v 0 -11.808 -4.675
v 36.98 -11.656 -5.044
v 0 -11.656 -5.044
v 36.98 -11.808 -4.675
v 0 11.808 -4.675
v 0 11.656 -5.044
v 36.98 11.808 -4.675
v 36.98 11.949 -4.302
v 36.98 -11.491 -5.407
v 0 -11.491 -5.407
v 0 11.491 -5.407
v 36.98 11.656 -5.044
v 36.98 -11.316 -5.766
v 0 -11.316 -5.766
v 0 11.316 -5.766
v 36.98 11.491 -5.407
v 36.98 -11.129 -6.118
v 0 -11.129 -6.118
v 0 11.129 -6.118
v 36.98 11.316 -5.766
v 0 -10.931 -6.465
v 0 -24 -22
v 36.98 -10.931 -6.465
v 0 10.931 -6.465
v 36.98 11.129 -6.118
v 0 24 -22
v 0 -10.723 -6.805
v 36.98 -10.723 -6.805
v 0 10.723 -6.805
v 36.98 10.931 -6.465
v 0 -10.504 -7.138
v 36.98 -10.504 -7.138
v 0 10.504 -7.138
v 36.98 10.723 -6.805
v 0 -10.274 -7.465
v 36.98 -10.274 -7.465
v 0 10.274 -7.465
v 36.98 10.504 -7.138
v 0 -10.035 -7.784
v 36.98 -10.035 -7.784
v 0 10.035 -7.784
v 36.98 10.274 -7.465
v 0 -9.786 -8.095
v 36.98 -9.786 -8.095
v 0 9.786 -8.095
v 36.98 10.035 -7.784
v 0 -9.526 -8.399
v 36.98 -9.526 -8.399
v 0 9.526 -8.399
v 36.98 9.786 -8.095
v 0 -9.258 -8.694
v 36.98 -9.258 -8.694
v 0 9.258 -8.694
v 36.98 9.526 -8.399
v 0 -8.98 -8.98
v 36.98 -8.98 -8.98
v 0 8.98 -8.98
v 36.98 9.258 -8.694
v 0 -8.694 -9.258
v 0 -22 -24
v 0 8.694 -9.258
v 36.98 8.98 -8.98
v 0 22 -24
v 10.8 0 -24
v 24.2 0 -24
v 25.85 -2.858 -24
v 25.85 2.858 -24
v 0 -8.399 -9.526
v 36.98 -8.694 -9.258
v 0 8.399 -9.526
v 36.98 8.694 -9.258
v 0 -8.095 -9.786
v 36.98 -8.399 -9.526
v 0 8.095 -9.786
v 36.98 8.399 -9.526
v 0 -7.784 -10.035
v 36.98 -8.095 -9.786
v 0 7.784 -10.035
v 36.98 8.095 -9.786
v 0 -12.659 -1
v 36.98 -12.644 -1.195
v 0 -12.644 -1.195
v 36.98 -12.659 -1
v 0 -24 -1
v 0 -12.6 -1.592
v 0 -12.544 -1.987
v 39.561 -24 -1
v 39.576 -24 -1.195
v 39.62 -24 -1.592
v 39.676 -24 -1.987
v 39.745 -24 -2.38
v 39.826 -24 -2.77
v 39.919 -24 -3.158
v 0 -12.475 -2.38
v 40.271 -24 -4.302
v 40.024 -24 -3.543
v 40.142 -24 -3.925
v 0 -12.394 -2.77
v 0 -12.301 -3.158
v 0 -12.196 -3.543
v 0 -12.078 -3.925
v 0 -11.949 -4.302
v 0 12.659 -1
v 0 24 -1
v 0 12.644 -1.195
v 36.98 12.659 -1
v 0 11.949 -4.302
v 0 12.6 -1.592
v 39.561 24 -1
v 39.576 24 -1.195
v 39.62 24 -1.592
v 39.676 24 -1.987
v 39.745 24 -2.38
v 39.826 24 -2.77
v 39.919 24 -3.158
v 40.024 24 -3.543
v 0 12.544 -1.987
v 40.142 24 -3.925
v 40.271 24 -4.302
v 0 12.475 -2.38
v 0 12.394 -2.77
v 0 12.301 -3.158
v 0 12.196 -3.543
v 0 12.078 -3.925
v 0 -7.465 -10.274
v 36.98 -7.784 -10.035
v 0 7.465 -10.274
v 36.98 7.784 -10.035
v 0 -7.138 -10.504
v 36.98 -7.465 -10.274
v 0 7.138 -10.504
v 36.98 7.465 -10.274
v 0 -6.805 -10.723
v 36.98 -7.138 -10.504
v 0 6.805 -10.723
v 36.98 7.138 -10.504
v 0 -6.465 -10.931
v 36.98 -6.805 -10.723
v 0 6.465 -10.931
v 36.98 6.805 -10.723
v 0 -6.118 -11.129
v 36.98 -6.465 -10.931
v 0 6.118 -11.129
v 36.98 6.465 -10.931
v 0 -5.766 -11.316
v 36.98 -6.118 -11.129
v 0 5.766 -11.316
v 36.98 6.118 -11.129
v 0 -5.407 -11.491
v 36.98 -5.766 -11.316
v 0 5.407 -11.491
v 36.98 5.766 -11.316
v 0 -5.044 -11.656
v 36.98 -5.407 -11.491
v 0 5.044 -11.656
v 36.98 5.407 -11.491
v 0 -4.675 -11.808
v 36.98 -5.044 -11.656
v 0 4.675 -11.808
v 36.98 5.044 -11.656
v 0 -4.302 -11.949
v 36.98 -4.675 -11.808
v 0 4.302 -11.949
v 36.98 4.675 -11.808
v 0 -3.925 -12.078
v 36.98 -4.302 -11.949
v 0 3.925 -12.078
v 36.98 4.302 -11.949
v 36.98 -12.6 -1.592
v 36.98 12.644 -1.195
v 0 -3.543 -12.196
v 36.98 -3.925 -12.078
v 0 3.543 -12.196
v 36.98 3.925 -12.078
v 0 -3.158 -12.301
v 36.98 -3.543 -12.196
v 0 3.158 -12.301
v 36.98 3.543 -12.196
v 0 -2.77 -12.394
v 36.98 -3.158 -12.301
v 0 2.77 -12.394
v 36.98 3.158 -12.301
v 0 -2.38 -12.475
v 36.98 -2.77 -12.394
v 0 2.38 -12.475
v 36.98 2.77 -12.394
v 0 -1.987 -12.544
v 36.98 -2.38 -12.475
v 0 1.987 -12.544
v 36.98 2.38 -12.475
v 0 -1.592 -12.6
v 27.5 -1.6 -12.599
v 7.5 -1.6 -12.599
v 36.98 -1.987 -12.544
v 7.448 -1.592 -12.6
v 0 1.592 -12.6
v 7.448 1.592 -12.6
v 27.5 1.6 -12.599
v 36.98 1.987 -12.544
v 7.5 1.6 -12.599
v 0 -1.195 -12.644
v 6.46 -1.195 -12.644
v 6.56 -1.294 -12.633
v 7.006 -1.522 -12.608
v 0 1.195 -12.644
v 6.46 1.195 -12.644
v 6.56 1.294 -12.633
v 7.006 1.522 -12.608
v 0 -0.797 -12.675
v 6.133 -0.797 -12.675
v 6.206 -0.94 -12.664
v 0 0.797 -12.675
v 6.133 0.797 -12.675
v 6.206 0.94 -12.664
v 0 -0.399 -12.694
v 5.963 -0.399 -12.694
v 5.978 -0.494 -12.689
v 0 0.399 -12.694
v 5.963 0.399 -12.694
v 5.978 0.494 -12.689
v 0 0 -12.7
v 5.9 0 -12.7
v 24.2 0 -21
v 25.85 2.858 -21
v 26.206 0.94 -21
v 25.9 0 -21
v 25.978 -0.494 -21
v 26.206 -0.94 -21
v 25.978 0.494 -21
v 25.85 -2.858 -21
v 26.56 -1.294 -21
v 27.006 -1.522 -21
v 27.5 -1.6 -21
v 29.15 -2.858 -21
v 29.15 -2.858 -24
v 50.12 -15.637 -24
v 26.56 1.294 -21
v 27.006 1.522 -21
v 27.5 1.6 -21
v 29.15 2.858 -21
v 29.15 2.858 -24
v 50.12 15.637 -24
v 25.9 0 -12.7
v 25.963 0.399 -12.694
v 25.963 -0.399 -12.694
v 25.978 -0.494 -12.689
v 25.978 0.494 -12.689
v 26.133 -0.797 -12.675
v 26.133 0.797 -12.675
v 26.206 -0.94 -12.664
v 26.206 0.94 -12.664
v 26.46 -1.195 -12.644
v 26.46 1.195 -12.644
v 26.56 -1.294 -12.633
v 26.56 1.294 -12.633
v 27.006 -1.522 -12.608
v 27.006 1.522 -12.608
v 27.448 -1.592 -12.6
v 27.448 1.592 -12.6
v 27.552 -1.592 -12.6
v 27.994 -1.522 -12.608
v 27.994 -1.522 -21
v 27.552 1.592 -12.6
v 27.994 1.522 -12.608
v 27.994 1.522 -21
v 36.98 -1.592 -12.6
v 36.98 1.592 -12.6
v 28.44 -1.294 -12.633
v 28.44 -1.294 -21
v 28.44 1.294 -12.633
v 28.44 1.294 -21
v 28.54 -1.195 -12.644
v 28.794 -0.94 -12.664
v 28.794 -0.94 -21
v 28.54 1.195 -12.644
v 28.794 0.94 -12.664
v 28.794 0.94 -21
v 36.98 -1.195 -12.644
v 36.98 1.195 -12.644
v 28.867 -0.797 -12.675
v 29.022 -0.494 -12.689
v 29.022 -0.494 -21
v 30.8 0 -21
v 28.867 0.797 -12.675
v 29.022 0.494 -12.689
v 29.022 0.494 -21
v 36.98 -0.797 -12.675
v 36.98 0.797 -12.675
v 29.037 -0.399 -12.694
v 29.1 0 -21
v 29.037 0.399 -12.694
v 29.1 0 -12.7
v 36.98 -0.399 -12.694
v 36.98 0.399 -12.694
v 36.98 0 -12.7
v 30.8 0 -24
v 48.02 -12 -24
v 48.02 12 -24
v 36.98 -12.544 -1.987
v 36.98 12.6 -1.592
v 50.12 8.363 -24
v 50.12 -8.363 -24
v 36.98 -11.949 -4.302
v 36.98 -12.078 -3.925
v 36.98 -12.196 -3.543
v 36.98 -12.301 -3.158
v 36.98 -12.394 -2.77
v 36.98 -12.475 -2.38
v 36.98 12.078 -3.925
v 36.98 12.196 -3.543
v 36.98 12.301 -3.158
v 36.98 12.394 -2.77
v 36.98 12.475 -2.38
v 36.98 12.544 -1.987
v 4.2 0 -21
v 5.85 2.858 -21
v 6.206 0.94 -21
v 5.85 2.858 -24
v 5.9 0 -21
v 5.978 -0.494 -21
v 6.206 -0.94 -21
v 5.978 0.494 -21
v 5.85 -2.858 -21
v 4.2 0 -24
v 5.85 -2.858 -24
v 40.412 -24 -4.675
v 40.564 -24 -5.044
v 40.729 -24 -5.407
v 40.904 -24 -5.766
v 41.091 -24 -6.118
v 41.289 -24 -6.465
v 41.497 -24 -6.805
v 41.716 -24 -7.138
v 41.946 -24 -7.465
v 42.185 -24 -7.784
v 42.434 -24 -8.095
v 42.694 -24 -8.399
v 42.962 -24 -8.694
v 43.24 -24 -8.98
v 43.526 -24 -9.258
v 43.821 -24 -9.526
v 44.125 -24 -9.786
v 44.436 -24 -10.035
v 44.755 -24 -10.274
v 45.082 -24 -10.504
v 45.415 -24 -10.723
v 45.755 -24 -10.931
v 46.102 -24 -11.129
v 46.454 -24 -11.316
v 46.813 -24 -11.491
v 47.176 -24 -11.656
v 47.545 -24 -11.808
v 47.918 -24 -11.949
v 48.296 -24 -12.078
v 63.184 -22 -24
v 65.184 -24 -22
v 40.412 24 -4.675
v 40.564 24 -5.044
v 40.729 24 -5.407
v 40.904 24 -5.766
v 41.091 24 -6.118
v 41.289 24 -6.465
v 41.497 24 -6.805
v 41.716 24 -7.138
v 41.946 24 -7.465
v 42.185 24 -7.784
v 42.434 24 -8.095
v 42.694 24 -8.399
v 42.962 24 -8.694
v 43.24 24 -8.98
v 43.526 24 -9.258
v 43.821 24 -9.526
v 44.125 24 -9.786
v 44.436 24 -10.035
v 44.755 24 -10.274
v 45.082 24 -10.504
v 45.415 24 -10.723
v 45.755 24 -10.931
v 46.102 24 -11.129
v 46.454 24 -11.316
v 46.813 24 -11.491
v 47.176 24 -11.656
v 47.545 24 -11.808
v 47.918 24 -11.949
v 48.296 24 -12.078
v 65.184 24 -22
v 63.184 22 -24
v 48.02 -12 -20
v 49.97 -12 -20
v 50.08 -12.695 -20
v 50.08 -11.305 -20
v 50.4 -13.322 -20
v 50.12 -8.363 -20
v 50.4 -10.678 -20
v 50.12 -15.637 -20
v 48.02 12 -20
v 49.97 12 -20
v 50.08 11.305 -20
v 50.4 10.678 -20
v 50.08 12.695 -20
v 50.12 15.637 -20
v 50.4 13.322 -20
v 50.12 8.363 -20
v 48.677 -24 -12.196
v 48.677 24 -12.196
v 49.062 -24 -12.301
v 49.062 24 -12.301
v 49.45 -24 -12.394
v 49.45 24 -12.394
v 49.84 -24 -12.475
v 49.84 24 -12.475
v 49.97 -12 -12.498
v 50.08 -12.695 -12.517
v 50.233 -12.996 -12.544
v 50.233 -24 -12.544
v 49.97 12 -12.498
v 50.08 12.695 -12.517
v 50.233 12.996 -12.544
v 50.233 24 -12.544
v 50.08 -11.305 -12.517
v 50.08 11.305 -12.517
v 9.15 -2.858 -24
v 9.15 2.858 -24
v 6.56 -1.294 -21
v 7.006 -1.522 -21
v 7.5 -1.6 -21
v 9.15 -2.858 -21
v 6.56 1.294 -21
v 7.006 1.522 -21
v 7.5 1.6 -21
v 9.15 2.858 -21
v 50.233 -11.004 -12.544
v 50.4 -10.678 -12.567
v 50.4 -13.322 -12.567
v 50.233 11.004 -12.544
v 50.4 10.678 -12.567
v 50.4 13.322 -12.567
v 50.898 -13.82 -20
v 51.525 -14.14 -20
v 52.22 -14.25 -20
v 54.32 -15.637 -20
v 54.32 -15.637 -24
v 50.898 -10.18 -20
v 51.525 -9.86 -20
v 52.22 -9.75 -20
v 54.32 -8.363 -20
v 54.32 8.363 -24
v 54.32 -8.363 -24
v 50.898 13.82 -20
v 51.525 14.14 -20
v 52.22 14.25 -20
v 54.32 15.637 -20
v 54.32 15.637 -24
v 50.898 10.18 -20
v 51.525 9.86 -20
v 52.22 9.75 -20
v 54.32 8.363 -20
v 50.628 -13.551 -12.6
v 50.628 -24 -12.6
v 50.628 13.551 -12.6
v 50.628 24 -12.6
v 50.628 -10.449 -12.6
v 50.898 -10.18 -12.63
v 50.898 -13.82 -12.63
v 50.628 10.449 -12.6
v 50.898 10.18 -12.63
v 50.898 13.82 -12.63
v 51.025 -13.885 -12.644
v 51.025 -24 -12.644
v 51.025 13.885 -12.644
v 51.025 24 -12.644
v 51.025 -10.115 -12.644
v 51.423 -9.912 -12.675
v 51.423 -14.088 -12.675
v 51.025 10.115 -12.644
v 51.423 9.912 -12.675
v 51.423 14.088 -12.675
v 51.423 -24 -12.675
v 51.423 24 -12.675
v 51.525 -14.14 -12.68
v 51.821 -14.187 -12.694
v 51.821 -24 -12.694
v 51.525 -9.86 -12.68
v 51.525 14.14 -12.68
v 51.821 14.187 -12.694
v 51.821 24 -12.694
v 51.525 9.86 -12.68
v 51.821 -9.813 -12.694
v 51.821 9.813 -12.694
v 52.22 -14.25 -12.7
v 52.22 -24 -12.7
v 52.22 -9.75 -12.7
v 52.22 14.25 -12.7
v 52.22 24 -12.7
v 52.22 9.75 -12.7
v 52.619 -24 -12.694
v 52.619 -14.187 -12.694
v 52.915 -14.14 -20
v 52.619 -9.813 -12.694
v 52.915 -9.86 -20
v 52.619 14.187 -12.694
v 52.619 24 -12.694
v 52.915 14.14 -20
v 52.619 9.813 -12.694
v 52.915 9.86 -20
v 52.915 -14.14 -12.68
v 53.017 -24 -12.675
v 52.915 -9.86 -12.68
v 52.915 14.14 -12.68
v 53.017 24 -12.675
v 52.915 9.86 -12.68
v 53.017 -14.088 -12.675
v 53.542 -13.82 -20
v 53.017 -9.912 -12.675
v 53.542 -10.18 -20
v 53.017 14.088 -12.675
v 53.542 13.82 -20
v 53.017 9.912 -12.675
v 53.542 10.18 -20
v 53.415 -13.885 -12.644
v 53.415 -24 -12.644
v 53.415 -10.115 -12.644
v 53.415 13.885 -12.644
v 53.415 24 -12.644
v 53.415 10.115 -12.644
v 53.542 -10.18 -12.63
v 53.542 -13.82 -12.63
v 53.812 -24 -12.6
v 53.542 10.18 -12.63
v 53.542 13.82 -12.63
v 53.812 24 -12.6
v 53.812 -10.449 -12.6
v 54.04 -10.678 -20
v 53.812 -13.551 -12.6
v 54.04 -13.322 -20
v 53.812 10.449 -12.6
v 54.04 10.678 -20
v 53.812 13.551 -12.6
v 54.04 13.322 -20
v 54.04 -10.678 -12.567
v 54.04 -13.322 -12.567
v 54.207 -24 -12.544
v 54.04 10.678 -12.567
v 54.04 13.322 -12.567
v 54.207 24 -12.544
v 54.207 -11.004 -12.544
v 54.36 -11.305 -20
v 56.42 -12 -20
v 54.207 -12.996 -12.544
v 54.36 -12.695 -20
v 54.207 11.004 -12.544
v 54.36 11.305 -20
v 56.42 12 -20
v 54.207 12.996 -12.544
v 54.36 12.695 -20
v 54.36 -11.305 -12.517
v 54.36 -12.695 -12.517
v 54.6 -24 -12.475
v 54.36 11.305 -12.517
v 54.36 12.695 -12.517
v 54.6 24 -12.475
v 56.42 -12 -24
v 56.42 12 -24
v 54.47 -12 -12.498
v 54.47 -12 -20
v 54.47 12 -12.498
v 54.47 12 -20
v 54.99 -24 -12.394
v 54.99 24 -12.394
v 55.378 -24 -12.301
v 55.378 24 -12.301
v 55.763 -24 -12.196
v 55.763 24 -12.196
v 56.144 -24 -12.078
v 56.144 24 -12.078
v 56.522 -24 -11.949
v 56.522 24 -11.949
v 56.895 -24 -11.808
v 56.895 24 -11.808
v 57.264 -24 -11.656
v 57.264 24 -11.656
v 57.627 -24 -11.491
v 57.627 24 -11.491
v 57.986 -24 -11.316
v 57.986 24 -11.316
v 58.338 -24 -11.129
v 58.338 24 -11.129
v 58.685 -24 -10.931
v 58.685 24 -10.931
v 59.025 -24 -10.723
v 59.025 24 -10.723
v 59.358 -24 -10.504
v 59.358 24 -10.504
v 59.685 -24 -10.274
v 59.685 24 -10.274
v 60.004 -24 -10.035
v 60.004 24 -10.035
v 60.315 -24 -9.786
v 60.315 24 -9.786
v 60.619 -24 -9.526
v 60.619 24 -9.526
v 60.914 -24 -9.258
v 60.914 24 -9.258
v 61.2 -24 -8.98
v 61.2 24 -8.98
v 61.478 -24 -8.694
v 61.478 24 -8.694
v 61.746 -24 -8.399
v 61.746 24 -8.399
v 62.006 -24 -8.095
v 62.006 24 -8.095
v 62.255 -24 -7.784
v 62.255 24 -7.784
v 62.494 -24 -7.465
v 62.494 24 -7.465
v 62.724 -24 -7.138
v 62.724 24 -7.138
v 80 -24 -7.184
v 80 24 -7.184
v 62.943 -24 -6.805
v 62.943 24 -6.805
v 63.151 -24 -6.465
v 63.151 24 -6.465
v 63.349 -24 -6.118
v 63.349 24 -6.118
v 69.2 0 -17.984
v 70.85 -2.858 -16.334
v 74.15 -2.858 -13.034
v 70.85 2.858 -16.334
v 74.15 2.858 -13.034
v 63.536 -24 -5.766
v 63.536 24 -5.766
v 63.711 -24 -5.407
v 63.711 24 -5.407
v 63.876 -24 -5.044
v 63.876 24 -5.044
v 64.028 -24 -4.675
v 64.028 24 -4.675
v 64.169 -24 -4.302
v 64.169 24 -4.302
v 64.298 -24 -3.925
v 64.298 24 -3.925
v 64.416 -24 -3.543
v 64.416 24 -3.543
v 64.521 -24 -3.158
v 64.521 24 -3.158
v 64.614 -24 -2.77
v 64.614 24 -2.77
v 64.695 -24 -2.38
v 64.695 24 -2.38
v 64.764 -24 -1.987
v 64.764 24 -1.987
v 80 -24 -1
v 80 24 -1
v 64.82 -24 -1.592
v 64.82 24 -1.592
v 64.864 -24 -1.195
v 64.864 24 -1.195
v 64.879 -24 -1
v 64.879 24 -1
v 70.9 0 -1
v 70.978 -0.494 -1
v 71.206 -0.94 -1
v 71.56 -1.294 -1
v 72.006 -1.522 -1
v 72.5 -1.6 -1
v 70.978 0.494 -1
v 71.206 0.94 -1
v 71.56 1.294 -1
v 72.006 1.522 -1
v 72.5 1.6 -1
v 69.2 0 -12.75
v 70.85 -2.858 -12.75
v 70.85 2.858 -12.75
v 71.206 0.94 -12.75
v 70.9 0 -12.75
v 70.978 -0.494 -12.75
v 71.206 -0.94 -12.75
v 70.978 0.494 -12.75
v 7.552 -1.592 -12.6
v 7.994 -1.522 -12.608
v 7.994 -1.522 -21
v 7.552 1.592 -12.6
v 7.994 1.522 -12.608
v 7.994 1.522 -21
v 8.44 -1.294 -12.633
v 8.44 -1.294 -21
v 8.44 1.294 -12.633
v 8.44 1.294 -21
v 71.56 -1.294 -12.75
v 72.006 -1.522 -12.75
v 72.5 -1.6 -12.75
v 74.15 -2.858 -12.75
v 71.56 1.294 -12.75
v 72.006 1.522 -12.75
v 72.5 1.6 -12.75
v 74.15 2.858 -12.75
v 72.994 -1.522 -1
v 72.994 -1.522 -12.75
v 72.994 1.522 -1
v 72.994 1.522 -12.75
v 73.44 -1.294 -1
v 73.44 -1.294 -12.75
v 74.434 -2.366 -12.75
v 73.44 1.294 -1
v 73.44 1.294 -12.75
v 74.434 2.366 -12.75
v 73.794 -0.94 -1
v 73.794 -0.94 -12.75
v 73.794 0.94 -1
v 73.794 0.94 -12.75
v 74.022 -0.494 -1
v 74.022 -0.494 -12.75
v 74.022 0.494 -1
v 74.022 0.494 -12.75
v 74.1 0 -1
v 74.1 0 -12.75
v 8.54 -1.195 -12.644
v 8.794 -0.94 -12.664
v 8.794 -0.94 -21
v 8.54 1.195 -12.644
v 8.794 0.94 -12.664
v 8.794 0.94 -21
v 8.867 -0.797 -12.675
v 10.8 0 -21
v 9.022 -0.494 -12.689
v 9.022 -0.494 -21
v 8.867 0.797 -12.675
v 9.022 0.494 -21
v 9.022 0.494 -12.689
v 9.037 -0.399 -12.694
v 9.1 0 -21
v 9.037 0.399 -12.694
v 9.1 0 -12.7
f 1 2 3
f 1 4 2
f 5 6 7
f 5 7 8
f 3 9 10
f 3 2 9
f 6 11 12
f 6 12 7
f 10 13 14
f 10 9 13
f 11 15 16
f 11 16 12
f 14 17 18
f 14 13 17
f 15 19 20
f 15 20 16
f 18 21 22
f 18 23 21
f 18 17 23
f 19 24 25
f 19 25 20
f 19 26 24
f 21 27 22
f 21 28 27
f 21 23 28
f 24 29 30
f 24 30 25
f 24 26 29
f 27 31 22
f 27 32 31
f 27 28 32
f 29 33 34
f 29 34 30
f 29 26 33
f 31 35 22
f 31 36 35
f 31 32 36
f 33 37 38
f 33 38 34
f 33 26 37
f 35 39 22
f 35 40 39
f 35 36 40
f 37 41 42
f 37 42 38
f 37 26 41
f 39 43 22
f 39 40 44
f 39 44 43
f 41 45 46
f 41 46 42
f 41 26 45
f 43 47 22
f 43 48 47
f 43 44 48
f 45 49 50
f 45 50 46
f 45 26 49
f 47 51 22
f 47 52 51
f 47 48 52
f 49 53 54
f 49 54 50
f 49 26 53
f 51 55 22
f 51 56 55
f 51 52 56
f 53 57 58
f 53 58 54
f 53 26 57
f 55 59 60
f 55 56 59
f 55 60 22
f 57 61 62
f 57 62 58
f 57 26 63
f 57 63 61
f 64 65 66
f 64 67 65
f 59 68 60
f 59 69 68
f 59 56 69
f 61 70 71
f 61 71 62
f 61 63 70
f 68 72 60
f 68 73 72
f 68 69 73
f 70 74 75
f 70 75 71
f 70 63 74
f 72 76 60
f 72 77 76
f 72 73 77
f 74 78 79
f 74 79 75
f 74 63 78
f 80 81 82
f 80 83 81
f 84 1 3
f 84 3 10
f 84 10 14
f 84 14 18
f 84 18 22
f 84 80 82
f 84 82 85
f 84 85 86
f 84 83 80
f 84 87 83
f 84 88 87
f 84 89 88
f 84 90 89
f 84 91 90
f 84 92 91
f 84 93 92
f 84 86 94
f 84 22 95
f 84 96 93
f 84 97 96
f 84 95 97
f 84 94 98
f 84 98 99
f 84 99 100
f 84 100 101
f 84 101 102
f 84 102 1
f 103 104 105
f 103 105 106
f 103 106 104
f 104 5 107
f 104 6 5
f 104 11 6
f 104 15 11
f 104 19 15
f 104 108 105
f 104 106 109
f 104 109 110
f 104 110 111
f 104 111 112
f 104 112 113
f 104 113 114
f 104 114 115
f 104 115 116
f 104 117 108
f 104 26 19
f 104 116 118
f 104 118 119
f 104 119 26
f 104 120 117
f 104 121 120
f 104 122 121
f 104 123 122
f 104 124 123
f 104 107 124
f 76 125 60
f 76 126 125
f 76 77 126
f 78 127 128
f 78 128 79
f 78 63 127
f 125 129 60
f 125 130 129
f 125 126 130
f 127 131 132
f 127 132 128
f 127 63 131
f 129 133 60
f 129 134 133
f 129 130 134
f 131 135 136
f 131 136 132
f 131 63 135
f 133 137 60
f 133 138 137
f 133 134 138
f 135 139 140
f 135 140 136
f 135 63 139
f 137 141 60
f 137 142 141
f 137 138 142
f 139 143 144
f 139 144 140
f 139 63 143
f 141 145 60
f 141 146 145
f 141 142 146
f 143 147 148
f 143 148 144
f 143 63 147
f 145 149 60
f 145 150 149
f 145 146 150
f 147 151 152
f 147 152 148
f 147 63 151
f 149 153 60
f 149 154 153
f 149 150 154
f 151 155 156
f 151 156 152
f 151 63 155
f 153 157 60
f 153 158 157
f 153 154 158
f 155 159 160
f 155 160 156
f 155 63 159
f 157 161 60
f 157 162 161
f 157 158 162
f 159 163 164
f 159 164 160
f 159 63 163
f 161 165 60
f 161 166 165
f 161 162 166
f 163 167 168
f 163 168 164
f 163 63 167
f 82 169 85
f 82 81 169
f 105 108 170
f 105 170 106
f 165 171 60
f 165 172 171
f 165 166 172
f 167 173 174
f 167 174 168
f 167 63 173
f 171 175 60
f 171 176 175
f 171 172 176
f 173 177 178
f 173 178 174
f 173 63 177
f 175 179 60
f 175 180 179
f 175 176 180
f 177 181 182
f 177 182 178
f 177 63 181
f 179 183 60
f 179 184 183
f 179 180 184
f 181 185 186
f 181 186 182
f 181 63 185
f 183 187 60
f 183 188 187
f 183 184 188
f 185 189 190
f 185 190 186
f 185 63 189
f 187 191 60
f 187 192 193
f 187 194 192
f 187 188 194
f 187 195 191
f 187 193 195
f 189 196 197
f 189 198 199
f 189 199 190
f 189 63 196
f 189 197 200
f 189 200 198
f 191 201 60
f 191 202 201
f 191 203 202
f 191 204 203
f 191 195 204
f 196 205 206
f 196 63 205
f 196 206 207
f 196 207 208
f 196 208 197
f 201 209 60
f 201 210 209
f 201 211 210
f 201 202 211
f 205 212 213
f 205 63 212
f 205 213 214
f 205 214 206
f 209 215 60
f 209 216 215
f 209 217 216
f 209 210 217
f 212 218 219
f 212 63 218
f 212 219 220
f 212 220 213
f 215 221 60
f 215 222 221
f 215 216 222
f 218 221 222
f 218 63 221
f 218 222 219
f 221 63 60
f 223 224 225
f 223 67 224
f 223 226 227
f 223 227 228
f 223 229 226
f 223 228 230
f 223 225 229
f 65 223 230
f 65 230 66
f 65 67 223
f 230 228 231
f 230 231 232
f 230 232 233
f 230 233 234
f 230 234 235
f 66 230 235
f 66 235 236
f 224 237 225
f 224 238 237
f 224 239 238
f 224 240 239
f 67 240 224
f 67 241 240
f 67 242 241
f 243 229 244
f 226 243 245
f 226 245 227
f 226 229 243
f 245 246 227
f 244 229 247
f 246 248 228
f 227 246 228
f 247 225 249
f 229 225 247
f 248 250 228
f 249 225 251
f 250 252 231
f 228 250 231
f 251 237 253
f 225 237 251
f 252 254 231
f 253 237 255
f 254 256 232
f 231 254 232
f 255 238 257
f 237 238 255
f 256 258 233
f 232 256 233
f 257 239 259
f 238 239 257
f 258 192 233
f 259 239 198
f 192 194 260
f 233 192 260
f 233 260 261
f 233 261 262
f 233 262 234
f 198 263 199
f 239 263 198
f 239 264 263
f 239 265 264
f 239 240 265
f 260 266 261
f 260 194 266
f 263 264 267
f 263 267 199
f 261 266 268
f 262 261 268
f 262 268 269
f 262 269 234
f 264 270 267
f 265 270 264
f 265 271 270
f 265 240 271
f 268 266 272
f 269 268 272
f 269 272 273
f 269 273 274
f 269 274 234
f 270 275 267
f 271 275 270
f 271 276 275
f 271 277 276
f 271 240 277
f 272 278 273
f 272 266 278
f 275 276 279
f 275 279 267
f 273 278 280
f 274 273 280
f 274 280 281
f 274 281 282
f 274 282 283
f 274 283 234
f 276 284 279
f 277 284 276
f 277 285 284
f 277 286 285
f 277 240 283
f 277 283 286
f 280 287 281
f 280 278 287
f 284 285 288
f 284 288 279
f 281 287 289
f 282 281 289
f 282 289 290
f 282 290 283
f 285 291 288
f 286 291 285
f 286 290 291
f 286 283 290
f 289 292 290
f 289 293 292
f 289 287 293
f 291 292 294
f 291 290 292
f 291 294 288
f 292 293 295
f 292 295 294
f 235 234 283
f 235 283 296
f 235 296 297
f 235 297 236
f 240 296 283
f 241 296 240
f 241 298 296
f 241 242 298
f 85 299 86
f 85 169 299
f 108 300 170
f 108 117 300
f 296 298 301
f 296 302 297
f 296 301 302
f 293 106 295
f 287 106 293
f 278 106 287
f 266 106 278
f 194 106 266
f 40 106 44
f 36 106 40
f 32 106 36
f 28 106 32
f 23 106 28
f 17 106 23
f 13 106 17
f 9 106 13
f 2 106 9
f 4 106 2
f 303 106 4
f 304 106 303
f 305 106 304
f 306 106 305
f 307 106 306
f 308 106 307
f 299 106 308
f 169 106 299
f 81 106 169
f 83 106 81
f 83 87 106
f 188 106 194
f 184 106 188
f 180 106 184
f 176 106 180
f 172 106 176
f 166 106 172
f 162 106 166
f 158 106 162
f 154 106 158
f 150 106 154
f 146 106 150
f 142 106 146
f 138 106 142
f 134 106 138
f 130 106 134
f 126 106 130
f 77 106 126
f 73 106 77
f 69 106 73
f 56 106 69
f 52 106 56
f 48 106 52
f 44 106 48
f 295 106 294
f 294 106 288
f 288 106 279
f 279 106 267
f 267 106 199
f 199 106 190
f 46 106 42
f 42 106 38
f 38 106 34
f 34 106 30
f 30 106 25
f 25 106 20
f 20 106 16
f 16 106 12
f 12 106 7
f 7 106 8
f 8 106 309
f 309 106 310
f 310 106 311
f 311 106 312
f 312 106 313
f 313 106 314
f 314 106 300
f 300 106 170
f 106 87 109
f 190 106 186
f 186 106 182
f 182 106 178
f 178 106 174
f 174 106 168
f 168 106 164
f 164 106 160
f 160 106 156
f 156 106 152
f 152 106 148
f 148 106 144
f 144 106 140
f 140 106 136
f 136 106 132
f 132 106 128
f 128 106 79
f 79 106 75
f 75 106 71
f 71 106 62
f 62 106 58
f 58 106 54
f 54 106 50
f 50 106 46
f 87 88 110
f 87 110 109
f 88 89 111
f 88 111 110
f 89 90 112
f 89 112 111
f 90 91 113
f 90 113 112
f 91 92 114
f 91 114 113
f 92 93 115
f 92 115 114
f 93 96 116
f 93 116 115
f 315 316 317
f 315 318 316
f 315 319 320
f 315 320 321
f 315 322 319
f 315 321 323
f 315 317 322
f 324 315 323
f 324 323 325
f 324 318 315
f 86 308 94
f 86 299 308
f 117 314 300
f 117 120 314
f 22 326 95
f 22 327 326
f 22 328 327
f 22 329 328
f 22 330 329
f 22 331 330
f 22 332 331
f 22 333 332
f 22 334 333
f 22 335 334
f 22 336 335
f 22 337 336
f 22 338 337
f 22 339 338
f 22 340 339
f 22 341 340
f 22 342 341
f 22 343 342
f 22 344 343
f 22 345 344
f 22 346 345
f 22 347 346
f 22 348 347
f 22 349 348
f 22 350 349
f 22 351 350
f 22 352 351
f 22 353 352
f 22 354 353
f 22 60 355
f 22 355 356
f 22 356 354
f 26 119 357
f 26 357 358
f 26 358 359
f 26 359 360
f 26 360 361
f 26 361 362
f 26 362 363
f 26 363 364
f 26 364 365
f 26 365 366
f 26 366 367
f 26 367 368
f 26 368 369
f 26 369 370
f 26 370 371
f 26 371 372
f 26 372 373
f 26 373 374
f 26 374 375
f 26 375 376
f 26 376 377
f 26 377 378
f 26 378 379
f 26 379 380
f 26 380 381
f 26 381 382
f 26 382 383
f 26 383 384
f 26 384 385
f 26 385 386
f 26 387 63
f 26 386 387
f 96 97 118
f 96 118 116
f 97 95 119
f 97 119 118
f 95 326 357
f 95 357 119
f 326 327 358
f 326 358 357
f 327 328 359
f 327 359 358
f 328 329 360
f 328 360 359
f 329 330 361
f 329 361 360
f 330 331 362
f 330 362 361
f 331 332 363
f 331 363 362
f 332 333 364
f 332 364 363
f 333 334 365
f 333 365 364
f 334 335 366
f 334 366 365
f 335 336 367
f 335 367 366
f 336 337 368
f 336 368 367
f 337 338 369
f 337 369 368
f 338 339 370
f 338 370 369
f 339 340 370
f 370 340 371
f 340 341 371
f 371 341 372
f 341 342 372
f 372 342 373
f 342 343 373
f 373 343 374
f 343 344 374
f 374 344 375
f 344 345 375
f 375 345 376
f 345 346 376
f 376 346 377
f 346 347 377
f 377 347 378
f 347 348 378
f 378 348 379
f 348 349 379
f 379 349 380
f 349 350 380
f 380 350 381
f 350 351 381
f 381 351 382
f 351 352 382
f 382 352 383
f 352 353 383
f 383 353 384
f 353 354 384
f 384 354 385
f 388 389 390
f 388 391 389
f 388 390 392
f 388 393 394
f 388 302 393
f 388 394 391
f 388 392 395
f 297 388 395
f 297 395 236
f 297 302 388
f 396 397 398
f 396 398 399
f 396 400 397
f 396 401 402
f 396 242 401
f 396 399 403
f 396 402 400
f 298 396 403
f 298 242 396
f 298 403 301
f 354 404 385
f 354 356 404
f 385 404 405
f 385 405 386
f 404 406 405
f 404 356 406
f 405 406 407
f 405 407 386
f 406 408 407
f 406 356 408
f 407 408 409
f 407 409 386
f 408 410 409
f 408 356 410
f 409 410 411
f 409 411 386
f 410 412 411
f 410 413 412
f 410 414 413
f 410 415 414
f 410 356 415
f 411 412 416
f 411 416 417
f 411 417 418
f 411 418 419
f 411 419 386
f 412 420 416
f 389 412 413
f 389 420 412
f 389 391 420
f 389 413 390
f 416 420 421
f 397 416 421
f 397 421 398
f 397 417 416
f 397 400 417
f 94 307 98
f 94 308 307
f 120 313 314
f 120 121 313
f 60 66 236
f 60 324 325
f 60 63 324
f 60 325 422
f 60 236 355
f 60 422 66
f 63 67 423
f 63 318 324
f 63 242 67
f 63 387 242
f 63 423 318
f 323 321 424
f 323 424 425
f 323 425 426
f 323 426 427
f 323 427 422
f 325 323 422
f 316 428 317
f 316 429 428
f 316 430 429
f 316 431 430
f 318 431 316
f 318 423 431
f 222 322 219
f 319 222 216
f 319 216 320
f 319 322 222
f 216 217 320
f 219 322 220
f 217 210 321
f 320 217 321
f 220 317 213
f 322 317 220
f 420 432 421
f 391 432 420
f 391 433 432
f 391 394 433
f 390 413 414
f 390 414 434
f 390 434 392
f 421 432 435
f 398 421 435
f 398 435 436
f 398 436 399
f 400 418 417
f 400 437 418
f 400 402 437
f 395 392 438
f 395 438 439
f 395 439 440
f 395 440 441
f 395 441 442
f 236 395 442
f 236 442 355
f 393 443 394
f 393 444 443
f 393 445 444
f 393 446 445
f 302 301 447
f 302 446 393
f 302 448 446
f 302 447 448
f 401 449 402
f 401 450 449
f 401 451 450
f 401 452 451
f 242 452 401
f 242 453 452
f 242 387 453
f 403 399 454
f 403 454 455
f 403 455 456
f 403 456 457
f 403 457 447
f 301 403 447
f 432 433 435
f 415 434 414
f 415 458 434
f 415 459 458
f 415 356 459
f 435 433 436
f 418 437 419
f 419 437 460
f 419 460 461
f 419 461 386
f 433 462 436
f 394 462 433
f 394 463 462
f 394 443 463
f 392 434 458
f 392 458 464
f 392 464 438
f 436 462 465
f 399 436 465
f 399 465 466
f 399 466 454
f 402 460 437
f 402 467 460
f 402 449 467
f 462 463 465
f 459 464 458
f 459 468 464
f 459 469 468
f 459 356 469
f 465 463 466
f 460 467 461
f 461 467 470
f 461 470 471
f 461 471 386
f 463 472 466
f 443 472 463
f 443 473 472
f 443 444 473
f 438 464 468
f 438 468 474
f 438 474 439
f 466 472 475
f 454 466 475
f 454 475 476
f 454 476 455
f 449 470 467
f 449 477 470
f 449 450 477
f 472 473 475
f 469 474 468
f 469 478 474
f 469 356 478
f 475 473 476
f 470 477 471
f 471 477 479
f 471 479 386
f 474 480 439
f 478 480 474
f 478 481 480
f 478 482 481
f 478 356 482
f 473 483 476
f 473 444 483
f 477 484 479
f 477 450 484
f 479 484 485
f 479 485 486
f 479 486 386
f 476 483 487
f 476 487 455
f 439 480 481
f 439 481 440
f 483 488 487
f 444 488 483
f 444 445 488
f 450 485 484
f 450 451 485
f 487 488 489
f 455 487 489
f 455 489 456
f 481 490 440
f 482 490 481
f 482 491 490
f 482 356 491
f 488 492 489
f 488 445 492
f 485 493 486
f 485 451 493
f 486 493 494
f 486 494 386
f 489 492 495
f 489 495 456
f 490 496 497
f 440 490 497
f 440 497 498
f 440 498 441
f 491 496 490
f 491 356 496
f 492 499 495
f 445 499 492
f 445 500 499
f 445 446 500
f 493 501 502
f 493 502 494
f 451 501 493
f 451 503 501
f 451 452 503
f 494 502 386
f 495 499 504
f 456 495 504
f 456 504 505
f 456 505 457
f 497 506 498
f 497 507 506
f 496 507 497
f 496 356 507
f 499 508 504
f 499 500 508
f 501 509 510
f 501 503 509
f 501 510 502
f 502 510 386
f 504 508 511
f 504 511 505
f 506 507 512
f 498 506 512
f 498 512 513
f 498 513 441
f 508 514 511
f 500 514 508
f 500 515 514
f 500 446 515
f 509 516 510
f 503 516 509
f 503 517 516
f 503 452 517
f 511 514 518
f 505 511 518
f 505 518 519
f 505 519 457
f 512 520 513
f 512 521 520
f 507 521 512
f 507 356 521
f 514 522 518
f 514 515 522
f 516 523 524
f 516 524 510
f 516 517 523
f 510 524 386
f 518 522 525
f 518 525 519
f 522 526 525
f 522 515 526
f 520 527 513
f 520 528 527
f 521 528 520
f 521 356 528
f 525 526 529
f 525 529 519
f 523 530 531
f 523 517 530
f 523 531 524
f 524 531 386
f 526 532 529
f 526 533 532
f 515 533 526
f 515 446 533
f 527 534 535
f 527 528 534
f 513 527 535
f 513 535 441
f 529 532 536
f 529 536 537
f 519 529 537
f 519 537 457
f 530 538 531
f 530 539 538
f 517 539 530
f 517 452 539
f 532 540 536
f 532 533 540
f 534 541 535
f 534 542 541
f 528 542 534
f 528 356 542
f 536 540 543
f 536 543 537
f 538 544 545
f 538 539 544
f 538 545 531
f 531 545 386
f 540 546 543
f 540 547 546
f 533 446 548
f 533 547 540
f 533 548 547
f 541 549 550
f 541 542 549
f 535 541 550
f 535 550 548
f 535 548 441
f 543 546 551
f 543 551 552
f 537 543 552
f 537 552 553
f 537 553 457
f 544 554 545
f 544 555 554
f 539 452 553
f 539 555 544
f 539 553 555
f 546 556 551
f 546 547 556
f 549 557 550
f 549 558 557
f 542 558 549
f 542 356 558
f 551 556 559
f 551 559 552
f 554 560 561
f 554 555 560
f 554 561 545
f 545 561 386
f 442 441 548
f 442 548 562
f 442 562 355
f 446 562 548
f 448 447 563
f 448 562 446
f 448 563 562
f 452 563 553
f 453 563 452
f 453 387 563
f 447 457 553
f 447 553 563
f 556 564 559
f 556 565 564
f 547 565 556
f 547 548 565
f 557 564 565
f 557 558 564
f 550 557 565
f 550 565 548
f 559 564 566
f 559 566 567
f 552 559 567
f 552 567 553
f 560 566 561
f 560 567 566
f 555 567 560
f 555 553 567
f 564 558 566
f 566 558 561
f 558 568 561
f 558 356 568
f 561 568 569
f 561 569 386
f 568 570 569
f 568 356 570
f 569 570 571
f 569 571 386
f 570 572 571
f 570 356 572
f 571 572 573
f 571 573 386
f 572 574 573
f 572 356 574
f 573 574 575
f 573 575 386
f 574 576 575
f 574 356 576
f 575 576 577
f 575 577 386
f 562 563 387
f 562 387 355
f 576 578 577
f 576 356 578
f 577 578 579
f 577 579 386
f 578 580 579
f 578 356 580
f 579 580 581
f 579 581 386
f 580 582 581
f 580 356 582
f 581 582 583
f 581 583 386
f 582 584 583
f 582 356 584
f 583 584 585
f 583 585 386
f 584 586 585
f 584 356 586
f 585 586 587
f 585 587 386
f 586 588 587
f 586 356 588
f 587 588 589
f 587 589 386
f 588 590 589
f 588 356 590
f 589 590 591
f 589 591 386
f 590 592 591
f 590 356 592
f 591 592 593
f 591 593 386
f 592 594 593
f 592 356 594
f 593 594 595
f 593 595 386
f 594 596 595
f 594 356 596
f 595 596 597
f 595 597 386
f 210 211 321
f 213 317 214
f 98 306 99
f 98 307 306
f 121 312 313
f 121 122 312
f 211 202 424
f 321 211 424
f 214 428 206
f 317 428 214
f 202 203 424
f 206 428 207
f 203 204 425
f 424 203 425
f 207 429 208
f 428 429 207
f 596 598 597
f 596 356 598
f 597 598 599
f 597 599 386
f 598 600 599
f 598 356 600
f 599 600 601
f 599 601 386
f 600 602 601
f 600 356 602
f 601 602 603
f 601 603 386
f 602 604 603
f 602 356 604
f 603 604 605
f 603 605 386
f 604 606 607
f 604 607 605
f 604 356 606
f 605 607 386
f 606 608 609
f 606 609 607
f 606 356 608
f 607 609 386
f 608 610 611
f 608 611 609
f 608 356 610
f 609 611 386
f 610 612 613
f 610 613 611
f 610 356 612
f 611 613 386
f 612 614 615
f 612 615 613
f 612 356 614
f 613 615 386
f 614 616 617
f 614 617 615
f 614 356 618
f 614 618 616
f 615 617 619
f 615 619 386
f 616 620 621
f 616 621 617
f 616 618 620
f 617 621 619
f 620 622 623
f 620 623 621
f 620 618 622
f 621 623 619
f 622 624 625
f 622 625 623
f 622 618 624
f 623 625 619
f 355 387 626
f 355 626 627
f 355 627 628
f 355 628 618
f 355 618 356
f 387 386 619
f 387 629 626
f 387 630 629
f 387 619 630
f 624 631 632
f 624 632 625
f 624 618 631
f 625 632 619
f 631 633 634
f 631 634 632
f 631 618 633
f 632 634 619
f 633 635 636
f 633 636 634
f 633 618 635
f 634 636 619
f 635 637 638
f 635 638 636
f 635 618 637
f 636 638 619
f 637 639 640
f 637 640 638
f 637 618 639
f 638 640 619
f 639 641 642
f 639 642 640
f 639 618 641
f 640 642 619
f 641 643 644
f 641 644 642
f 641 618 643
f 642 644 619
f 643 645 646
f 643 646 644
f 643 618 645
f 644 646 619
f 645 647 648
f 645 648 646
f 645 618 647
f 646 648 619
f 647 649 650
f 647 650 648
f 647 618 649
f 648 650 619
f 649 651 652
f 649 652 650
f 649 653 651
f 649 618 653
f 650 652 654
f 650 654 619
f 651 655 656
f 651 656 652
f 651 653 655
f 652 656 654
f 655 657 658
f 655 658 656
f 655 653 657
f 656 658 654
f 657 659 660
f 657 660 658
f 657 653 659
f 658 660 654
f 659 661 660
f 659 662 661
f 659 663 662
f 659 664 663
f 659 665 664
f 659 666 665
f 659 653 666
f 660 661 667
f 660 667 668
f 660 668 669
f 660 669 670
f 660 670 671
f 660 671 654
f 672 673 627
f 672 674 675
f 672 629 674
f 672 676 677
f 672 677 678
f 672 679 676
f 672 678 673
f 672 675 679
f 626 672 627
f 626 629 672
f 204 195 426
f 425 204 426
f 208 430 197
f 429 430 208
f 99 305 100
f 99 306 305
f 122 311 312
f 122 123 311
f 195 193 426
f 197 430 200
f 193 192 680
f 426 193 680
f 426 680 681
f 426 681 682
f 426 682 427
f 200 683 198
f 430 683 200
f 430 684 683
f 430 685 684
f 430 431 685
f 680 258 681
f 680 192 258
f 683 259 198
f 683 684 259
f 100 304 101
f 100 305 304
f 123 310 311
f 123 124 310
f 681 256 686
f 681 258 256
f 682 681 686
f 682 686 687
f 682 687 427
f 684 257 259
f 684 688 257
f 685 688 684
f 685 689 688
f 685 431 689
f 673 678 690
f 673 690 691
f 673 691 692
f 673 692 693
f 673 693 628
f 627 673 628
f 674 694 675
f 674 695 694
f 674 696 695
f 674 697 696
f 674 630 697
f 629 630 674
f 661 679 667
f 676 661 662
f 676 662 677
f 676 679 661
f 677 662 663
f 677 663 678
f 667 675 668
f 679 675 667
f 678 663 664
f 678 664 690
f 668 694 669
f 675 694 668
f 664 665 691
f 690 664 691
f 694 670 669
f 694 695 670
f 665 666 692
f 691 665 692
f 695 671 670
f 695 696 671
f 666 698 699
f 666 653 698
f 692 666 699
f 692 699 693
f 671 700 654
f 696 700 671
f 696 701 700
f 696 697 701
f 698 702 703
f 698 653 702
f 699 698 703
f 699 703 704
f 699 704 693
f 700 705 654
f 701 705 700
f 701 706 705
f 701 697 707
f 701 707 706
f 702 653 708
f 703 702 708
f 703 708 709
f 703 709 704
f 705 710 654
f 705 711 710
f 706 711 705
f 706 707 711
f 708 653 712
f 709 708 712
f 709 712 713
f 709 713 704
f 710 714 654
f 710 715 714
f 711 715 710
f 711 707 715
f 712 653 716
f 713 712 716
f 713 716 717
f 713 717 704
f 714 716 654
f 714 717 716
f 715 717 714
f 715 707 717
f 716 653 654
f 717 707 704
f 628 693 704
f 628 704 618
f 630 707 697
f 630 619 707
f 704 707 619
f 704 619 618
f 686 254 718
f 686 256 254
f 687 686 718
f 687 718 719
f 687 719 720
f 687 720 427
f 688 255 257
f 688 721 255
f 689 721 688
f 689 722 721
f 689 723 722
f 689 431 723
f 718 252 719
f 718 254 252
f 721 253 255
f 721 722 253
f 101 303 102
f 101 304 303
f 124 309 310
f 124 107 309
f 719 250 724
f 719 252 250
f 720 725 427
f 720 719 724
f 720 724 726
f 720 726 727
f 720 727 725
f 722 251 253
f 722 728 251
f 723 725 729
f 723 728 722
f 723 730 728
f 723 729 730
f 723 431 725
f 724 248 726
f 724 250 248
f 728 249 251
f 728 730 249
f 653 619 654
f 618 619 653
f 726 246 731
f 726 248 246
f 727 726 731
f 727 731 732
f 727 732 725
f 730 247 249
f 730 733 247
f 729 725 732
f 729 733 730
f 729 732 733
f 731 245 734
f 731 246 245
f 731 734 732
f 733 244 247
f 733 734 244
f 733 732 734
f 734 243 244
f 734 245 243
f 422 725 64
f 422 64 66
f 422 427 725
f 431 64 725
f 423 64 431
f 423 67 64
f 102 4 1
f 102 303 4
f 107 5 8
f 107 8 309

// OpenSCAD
// file: ../lib/TextGenerator.scad
//Draw text
scale([4,4,4]) drawtext("Hello World!");

//Draw character set
//scale([2,2,2]) drawtext(" !\"#$%&'()*+,-./0123456789:;<=>?@ABCDEFGHIJKLMNOPQRSTUVWXYZ[\\]^_`abcdefghijklmnopqrstuvwxyz{|}");

module drawtext(text,center=false) {
	//Characters
	chars = " !\"#$%&'()*+,-./0123456789:;<=>?@ABCDEFGHIJKLMNOPQRSTUVWXYZ[\\]^_`abcdefghijklmnopqrstuvwxyz{|}";

	//Chracter table defining 5x7 characters
	//Adapted from: http://www.geocities.com/dinceraydin/djlcdsim/chartable.js
	char_table = [ [ 0, 0, 0, 0, 0, 0, 0],
                  [ 4, 0, 4, 4, 4, 4, 4],
                  [ 0, 0, 0, 0,10,10,10],
                  [10,10,31,10,31,10,10],
                  [ 4,30, 5,14,20,15, 4],
                  [ 3,19, 8, 4, 2,25,24],
                  [13,18,21, 8,20,18,12],
                  [ 0, 0, 0, 0, 8, 4,12],
                  [ 2, 4, 8, 8, 8, 4, 2],
                  [ 8, 4, 2, 2, 2, 4, 8],
                  [ 0, 4,21,14,21, 4, 0],
                  [ 0, 4, 4,31, 4, 4, 0],
                  [ 8, 4,12, 0, 0, 0, 0],
                  [ 0, 0, 0,31, 0, 0, 0],
                  [12,12, 0, 0, 0, 0, 0],
                  [ 0,16, 8, 4, 2, 1, 0],
                  [14,17,25,21,19,17,14],
                  [14, 4, 4, 4, 4,12, 4],
                  [31, 8, 4, 2, 1,17,14],
                  [14,17, 1, 2, 4, 2,31],
                  [ 2, 2,31,18,10, 6, 2],
                  [14,17, 1, 1,30,16,31],
                  [14,17,17,30,16, 8, 6],
                  [ 8, 8, 8, 4, 2, 1,31],
                  [14,17,17,14,17,17,14],
                  [12, 2, 1,15,17,17,14],
                  [ 0,12,12, 0,12,12, 0],
                  [ 8, 4,12, 0,12,12, 0],
                  [ 2, 4, 8,16, 8, 4, 2],
                  [ 0, 0,31, 0,31, 0, 0],
                  [16, 8, 4, 2, 4, 8,16],
                  [ 4, 0, 4, 2, 1,17,14],
                  [14,21,21,13, 1,17,14],
                  [17,17,31,17,17,17,14],
                  [30,17,17,30,17,17,30],
                  [14,17,16,16,16,17,14],
                  [30,17,17,17,17,17,30],
                  [31,16,16,30,16,16,31],
                  [16,16,16,30,16,16,31],
                  [15,17,17,23,16,17,14],
                  [17,17,17,31,17,17,17],
                  [14, 4, 4, 4, 4, 4,14],
                  [12,18, 2, 2, 2, 2, 7],
                  [17,18,20,24,20,18,17],
                  [31,16,16,16,16,16,16],
                  [17,17,17,21,21,27,17],
                  [17,17,19,21,25,17,17],
                  [14,17,17,17,17,17,14],
                  [16,16,16,30,17,17,30],
                  [13,18,21,17,17,17,14],
                  [17,18,20,30,17,17,30],
                  [30, 1, 1,14,16,16,15],
                  [ 4, 4, 4, 4, 4, 4,31],
                  [14,17,17,17,17,17,17],
                  [ 4,10,17,17,17,17,17],
                  [10,21,21,21,17,17,17],
                  [17,17,10, 4,10,17,17],
                  [ 4, 4, 4,10,17,17,17],
                  [31,16, 8, 4, 2, 1,31],
                  [14, 8, 8, 8, 8, 8,14],
                  [ 0, 1, 2, 4, 8,16, 0],
                  [14, 2, 2, 2, 2, 2,14],
                  [ 0, 0, 0, 0,17,10, 4],
                  [31, 0, 0, 0, 0, 0, 0],
                  [ 0, 0, 0, 0, 2, 4, 8],
                  [15,17,15, 1,14, 0, 0],
                  [30,17,17,25,22,16,16],
                  [14,17,16,16,14, 0, 0],
                  [15,17,17,19,13, 1, 1],
                  [14,16,31,17,14, 0, 0],
                  [ 8, 8, 8,28, 8, 9, 6],
                  [14, 1,15,17,15, 0, 0],
                  [17,17,17,25,22,16,16],
                  [14, 4, 4, 4,12, 0, 4],
                  [12,18, 2, 2, 2, 6, 2],
                  [18,20,24,20,18,16,16],
                  [14, 4, 4, 4, 4, 4,12],
                  [17,17,21,21,26, 0, 0],
                  [17,17,17,25,22, 0, 0],
                  [14,17,17,17,14, 0, 0],
                  [16,16,30,17,30, 0, 0],
                  [ 1, 1,15,19,13, 0, 0],
                  [16,16,16,25,22, 0, 0],
                  [30, 1,14,16,15, 0, 0],
                  [ 6, 9, 8, 8,28, 8, 8],
                  [13,19,17,17,17, 0, 0],
                  [ 4,10,17,17,17, 0, 0],
                  [10,21,21,17,17, 0, 0],
                  [17,10, 4,10,17, 0, 0],
                  [14, 1,15,17,17, 0, 0],
                  [31, 8, 4, 2,31, 0, 0],
                  [ 2, 4, 4, 8, 4, 4, 2],
                  [ 4, 4, 4, 4, 4, 4, 4],
                  [ 8, 4, 4, 2, 4, 4, 8] ];

	//Binary decode table
	dec_table = [ "00000", "00001", "00010", "00011", "00100", "00101",
  	            "00110", "00111", "01000", "01001", "01010", "01011",
  	            "01100", "01101", "01110", "01111", "10000", "10001",
  	            "10010", "10011", "10100", "10101", "10110", "10111",
	            "11000", "11001", "11010", "11011", "11100", "11101",
	            "11110", "11111" ];

    //Process string one character at a time
    for(itext = [0:len(text)-1]) {
        assign(length = len(text)) {
            //Convert character to index
            assign(ichar = search(text[itext],chars,1)[0]) {
                //Decode character - rows
                for(irow = [0:6]) {
                    assign(val = dec_table[char_table[ichar][irow]]) {
                        //Decode character - cols
                        for(icol = [0:4]) {
                            assign(bit = search(val[icol],"01",1)[0]) {
                                if(bit) {
                                    //Output cube
                                    if (center)
                                        translate([icol - 2.5 +
                                        (6*itext)-len(text)/2, irow-3.5,0])
                                            cube([1.0001,1.0001,1]);
                                    else {
                                        translate([icol + (6*itext), irow, 0])
                                            cube([1.0001,1.0001,1]);
                                    }
                                }
                            }
                        }
                    }
                }
            }
	}
}
}
// main file
include <../../parameters.scad>

use <../666_1017.scad>

difference(){
    rotate([0,90,0])
        666_1017(draft = false);
    translate([-50,-50,0])
        cube(150);
}
